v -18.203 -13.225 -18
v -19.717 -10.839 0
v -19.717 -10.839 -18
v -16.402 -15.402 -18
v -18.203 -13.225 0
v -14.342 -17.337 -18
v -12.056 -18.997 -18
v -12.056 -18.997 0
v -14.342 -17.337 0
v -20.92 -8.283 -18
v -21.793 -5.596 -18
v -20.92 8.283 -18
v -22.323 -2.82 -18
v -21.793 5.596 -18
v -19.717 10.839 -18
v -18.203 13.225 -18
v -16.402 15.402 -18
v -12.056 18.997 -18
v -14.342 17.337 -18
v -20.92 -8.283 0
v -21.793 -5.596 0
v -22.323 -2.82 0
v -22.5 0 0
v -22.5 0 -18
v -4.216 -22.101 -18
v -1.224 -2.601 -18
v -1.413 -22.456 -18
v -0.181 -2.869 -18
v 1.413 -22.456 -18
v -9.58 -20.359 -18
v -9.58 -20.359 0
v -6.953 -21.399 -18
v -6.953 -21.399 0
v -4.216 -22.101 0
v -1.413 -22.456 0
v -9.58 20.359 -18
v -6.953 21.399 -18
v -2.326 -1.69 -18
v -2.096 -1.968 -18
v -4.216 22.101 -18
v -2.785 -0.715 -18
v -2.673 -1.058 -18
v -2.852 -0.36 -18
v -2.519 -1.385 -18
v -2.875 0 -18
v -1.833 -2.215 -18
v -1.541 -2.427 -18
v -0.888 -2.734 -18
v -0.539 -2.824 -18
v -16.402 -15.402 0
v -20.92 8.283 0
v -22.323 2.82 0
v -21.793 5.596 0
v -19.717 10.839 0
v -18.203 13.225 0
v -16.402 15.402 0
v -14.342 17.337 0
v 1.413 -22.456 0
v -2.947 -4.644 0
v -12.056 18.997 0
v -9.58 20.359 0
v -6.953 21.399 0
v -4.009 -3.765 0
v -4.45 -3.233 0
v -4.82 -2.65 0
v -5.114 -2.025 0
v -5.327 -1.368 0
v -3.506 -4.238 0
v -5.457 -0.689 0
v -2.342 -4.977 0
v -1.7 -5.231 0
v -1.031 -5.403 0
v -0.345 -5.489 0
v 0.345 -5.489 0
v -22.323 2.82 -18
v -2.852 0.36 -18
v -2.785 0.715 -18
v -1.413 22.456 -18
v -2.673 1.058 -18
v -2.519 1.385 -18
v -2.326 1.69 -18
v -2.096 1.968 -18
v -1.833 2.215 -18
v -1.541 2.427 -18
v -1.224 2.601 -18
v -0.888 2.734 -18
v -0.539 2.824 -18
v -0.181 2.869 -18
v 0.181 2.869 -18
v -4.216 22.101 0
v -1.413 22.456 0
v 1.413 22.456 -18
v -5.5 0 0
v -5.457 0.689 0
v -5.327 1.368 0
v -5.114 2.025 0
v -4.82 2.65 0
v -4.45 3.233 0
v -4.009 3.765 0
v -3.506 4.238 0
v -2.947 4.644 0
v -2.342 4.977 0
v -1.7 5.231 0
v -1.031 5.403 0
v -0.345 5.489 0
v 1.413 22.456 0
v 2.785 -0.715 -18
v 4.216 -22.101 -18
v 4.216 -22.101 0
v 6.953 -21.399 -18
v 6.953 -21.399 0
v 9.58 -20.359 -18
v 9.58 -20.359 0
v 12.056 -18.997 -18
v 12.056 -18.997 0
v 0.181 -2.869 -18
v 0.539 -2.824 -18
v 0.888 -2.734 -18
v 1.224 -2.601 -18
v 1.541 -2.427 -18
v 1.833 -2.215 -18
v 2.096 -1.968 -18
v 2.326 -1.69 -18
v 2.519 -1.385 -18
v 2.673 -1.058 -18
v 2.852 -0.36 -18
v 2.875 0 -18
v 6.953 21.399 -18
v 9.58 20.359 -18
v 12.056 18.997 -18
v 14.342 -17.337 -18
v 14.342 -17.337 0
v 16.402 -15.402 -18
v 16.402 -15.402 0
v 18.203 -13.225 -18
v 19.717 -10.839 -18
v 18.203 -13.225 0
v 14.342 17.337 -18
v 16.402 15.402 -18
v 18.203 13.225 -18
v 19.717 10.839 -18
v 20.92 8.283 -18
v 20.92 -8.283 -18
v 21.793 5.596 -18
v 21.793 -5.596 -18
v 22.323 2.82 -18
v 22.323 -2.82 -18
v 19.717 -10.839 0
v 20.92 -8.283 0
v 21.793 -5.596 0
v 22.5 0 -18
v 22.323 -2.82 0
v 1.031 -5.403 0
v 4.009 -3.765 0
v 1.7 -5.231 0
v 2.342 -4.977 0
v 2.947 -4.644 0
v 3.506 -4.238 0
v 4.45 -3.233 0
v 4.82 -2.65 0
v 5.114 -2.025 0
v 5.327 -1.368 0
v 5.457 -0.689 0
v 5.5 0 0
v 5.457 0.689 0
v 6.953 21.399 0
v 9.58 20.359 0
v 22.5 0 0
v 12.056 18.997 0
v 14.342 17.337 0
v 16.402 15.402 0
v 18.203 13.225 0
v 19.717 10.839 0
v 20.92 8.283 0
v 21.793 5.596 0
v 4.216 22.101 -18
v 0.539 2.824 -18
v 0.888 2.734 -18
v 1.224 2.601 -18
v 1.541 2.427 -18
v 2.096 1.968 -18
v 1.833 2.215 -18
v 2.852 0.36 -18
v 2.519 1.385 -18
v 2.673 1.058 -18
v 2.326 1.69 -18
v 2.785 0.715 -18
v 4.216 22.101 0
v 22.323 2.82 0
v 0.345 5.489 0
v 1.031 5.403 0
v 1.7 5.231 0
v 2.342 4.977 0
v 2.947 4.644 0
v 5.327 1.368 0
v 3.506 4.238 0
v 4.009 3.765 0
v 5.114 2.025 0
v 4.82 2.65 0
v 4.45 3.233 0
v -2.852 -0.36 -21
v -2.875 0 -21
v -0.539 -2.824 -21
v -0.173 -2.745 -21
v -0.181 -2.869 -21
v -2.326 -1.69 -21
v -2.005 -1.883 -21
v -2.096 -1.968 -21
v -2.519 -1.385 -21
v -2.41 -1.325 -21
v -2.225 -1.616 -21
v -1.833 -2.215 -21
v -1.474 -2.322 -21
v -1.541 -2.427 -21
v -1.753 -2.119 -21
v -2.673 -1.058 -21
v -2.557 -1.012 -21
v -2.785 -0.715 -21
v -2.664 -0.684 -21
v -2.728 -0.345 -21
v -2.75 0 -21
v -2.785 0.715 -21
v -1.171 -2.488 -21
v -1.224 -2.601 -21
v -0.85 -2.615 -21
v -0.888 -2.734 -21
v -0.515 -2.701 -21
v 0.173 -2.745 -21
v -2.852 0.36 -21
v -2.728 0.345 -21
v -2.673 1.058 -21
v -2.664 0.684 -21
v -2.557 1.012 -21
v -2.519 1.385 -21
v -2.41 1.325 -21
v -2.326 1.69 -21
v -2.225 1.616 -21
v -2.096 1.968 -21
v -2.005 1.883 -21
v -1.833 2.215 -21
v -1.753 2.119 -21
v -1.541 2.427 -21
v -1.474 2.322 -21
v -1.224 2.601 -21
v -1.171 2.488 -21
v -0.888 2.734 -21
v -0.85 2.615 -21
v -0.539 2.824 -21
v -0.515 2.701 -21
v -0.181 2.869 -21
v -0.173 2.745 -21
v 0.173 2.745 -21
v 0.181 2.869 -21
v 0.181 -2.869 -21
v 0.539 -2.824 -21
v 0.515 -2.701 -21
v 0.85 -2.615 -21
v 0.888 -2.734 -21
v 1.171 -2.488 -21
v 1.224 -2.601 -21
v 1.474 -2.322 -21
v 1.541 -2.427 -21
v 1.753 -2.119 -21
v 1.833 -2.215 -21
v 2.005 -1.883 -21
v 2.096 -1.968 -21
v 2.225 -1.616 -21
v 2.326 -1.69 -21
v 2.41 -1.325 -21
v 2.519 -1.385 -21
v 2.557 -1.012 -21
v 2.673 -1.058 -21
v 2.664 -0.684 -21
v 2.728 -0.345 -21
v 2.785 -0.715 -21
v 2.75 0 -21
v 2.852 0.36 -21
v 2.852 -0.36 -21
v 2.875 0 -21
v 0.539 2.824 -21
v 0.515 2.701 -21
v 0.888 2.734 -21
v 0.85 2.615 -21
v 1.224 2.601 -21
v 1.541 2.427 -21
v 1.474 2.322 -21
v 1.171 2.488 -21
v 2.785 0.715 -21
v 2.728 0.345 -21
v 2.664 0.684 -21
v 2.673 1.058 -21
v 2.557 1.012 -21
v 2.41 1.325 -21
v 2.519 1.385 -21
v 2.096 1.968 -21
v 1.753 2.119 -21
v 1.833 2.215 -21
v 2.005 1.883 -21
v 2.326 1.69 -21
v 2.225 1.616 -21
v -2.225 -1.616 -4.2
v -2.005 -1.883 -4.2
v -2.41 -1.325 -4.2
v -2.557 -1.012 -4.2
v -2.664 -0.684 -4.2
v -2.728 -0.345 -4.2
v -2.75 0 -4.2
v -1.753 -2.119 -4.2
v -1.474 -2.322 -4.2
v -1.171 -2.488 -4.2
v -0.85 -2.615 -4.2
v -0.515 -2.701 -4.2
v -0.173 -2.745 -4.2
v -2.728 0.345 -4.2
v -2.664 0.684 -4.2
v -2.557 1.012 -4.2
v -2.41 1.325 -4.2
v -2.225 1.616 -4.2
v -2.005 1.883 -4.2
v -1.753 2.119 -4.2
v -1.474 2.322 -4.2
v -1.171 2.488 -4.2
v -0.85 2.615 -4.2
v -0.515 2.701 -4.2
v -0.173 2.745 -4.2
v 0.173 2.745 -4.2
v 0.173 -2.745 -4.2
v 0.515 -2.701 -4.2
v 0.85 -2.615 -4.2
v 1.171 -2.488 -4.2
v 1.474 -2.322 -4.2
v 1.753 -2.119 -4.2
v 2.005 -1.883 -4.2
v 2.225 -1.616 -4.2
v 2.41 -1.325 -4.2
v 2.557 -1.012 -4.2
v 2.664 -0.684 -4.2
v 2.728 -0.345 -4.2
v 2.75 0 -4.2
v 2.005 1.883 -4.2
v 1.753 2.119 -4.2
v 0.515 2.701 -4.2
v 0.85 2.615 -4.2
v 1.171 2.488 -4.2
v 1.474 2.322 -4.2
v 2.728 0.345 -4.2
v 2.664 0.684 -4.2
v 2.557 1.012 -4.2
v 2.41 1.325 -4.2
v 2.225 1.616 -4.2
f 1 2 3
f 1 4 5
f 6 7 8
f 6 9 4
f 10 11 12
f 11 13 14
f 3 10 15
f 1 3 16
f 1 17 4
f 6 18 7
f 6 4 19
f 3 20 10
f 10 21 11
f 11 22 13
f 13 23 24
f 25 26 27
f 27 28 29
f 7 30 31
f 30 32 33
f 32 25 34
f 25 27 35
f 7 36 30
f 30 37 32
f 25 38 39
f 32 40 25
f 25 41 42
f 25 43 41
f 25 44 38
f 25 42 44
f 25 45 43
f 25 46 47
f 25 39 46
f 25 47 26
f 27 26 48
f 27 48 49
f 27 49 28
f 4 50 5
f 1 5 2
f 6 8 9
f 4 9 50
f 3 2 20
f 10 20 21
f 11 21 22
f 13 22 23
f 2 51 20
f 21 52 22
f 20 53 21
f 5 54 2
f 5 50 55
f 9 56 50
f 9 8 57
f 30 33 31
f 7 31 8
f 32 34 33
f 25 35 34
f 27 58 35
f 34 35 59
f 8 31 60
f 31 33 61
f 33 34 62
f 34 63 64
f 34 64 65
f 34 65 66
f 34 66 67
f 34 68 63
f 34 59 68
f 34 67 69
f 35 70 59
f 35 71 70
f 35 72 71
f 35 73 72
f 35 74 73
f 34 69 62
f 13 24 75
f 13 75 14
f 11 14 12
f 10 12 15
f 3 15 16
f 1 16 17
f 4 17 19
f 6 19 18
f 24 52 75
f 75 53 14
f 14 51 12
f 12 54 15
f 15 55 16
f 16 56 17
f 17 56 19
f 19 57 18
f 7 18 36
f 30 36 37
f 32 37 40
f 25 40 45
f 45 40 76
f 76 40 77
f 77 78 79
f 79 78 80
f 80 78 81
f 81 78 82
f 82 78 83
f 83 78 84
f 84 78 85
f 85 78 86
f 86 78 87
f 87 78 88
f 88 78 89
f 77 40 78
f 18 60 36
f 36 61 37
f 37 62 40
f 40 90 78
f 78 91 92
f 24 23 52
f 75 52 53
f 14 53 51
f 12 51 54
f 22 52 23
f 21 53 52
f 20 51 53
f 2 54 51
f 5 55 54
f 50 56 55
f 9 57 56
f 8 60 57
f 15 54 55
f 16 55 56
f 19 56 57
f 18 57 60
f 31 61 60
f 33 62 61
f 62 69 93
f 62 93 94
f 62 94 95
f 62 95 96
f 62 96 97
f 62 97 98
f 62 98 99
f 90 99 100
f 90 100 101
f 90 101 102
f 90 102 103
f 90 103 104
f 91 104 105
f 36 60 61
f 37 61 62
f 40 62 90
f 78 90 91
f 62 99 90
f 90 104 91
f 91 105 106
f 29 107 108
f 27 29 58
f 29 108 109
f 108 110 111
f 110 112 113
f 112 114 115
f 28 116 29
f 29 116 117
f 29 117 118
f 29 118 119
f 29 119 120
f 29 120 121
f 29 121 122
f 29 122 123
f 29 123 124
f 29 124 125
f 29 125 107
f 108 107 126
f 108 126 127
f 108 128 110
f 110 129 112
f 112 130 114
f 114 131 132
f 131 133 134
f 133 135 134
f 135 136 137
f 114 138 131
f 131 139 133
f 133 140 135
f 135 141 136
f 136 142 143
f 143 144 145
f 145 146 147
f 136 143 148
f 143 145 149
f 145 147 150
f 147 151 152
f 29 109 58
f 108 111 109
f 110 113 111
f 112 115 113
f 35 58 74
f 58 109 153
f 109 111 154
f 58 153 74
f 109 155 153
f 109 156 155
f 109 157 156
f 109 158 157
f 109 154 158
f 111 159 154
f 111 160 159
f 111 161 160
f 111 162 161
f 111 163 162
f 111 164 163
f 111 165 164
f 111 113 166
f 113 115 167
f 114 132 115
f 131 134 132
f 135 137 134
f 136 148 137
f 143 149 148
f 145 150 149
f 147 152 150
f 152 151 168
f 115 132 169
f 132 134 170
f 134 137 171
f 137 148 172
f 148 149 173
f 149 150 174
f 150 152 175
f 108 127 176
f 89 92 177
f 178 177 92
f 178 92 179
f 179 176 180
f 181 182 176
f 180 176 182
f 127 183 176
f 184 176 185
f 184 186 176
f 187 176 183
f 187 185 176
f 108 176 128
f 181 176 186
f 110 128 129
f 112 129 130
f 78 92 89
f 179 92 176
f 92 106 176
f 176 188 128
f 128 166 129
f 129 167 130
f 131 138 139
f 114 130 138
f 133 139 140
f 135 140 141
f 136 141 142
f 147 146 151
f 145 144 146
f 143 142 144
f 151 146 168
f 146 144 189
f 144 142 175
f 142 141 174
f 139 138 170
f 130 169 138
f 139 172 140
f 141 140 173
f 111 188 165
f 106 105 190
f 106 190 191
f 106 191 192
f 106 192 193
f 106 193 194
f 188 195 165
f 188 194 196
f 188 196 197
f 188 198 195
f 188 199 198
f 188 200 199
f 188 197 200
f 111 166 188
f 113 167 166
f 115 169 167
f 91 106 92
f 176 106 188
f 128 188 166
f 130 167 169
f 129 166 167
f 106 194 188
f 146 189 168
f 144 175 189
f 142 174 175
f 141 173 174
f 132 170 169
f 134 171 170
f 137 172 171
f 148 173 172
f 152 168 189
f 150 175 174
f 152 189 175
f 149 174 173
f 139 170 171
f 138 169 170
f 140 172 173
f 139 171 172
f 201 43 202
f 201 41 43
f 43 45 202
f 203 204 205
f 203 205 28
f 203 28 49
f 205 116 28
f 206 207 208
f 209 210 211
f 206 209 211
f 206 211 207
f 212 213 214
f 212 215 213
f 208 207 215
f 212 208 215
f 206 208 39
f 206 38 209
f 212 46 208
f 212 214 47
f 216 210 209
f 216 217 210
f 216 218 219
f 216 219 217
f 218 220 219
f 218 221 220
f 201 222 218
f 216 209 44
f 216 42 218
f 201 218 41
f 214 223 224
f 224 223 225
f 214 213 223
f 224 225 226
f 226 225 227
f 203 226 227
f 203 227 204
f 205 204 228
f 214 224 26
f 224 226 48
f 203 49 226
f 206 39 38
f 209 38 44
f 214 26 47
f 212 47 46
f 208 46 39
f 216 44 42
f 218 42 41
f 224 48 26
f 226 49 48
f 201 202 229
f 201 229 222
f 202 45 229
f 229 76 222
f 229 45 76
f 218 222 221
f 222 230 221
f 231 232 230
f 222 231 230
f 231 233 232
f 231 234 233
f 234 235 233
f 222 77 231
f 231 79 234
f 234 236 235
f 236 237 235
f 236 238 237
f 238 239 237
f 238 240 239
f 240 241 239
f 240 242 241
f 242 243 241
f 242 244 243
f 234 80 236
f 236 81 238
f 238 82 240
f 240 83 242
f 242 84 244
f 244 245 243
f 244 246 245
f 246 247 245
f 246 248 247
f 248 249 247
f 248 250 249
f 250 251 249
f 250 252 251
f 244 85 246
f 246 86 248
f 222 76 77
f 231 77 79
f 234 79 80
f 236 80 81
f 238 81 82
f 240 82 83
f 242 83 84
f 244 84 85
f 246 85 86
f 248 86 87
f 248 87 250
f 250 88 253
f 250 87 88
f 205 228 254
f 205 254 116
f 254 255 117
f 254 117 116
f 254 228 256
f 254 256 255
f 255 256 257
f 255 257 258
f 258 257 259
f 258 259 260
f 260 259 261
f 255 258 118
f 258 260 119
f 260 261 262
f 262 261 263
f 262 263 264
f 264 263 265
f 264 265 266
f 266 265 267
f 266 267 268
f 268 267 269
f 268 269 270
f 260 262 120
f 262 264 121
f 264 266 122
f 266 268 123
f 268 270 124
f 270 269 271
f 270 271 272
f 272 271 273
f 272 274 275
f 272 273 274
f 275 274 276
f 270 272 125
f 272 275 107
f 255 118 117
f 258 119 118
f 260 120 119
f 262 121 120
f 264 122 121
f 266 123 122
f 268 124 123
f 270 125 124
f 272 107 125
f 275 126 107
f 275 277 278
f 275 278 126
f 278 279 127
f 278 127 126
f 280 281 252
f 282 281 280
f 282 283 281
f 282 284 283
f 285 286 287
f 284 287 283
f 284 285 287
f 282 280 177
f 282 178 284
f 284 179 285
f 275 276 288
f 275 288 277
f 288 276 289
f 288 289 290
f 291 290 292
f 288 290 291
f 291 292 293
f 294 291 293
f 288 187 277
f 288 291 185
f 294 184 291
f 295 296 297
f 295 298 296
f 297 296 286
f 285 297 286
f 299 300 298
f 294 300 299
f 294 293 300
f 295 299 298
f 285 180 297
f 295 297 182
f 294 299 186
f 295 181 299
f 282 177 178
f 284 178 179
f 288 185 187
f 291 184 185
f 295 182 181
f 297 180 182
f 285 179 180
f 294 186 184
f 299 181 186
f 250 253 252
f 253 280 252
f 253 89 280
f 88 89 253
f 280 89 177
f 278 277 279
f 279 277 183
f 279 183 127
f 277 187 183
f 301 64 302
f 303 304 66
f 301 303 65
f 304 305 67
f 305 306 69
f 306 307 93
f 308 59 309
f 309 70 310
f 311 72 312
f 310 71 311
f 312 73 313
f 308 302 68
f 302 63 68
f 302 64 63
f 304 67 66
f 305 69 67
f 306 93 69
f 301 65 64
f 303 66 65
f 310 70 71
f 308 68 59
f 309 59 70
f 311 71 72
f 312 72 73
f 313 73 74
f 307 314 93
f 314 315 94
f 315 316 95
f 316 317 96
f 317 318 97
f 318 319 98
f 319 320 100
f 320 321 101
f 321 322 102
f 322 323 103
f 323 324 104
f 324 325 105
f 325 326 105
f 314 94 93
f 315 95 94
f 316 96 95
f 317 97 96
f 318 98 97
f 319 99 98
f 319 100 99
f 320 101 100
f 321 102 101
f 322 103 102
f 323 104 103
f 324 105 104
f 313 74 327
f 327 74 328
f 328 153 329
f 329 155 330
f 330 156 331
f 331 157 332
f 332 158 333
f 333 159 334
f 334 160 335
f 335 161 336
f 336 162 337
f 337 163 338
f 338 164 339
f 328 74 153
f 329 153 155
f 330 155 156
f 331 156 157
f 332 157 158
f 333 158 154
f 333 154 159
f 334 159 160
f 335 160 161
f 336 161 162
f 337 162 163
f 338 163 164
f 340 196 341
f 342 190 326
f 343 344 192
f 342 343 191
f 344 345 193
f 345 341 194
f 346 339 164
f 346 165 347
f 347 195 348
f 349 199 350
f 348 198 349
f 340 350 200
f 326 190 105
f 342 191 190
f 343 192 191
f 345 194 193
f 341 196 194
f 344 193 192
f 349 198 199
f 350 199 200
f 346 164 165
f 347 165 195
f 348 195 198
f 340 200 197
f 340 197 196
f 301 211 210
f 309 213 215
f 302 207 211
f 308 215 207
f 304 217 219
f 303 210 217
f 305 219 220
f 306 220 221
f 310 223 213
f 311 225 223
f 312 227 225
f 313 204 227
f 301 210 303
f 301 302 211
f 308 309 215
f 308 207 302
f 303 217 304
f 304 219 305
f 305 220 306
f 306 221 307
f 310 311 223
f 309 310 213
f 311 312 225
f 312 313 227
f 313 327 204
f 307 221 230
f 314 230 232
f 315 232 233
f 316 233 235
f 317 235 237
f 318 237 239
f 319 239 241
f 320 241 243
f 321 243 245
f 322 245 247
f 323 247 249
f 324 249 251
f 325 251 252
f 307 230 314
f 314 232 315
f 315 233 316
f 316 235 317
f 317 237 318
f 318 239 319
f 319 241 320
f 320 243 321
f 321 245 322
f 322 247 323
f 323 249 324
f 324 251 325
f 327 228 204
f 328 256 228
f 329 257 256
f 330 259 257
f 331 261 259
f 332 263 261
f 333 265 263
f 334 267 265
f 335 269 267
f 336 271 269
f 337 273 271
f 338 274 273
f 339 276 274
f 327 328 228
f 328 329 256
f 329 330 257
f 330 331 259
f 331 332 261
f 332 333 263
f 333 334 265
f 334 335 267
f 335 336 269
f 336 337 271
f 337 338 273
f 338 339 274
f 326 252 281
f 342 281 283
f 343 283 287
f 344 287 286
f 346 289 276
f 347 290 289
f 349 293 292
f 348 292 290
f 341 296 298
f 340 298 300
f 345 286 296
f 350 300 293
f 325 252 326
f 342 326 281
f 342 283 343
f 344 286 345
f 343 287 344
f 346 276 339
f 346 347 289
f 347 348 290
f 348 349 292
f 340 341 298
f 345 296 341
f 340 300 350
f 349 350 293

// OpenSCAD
$fn = 50;

difference() {
	union() {
		translate(v = [0, 0, -18.0]) {
			cylinder(h = 18, r = 22.5);
		}
		#translate(v = [0, 0, -21.0]) {
			cylinder(h = 21, r = 2.875);
		}
	}
	union() {
		translate(v = [0, 0, 0]) {
			rotate(a = [0, 0, 0]) {
				difference() {
					union() {
						translate(v = [0, 0, -21.0]) {
							cylinder(h = 21, r = 2.25);
						}
						translate(v = [0, 0, -4.2]) {
							cylinder(h = 4.2, r1 = 2.75, r2 = 5.5);
						}
						translate(v = [0, 0, -21.0]) {
							cylinder(h = 21, r = 2.75);
						}
						translate(v = [0, 0, -21.0]) {
							cylinder(h = 21, r = 2.25);
						}
					}
					union();
				}
			}
		}
	}
}
